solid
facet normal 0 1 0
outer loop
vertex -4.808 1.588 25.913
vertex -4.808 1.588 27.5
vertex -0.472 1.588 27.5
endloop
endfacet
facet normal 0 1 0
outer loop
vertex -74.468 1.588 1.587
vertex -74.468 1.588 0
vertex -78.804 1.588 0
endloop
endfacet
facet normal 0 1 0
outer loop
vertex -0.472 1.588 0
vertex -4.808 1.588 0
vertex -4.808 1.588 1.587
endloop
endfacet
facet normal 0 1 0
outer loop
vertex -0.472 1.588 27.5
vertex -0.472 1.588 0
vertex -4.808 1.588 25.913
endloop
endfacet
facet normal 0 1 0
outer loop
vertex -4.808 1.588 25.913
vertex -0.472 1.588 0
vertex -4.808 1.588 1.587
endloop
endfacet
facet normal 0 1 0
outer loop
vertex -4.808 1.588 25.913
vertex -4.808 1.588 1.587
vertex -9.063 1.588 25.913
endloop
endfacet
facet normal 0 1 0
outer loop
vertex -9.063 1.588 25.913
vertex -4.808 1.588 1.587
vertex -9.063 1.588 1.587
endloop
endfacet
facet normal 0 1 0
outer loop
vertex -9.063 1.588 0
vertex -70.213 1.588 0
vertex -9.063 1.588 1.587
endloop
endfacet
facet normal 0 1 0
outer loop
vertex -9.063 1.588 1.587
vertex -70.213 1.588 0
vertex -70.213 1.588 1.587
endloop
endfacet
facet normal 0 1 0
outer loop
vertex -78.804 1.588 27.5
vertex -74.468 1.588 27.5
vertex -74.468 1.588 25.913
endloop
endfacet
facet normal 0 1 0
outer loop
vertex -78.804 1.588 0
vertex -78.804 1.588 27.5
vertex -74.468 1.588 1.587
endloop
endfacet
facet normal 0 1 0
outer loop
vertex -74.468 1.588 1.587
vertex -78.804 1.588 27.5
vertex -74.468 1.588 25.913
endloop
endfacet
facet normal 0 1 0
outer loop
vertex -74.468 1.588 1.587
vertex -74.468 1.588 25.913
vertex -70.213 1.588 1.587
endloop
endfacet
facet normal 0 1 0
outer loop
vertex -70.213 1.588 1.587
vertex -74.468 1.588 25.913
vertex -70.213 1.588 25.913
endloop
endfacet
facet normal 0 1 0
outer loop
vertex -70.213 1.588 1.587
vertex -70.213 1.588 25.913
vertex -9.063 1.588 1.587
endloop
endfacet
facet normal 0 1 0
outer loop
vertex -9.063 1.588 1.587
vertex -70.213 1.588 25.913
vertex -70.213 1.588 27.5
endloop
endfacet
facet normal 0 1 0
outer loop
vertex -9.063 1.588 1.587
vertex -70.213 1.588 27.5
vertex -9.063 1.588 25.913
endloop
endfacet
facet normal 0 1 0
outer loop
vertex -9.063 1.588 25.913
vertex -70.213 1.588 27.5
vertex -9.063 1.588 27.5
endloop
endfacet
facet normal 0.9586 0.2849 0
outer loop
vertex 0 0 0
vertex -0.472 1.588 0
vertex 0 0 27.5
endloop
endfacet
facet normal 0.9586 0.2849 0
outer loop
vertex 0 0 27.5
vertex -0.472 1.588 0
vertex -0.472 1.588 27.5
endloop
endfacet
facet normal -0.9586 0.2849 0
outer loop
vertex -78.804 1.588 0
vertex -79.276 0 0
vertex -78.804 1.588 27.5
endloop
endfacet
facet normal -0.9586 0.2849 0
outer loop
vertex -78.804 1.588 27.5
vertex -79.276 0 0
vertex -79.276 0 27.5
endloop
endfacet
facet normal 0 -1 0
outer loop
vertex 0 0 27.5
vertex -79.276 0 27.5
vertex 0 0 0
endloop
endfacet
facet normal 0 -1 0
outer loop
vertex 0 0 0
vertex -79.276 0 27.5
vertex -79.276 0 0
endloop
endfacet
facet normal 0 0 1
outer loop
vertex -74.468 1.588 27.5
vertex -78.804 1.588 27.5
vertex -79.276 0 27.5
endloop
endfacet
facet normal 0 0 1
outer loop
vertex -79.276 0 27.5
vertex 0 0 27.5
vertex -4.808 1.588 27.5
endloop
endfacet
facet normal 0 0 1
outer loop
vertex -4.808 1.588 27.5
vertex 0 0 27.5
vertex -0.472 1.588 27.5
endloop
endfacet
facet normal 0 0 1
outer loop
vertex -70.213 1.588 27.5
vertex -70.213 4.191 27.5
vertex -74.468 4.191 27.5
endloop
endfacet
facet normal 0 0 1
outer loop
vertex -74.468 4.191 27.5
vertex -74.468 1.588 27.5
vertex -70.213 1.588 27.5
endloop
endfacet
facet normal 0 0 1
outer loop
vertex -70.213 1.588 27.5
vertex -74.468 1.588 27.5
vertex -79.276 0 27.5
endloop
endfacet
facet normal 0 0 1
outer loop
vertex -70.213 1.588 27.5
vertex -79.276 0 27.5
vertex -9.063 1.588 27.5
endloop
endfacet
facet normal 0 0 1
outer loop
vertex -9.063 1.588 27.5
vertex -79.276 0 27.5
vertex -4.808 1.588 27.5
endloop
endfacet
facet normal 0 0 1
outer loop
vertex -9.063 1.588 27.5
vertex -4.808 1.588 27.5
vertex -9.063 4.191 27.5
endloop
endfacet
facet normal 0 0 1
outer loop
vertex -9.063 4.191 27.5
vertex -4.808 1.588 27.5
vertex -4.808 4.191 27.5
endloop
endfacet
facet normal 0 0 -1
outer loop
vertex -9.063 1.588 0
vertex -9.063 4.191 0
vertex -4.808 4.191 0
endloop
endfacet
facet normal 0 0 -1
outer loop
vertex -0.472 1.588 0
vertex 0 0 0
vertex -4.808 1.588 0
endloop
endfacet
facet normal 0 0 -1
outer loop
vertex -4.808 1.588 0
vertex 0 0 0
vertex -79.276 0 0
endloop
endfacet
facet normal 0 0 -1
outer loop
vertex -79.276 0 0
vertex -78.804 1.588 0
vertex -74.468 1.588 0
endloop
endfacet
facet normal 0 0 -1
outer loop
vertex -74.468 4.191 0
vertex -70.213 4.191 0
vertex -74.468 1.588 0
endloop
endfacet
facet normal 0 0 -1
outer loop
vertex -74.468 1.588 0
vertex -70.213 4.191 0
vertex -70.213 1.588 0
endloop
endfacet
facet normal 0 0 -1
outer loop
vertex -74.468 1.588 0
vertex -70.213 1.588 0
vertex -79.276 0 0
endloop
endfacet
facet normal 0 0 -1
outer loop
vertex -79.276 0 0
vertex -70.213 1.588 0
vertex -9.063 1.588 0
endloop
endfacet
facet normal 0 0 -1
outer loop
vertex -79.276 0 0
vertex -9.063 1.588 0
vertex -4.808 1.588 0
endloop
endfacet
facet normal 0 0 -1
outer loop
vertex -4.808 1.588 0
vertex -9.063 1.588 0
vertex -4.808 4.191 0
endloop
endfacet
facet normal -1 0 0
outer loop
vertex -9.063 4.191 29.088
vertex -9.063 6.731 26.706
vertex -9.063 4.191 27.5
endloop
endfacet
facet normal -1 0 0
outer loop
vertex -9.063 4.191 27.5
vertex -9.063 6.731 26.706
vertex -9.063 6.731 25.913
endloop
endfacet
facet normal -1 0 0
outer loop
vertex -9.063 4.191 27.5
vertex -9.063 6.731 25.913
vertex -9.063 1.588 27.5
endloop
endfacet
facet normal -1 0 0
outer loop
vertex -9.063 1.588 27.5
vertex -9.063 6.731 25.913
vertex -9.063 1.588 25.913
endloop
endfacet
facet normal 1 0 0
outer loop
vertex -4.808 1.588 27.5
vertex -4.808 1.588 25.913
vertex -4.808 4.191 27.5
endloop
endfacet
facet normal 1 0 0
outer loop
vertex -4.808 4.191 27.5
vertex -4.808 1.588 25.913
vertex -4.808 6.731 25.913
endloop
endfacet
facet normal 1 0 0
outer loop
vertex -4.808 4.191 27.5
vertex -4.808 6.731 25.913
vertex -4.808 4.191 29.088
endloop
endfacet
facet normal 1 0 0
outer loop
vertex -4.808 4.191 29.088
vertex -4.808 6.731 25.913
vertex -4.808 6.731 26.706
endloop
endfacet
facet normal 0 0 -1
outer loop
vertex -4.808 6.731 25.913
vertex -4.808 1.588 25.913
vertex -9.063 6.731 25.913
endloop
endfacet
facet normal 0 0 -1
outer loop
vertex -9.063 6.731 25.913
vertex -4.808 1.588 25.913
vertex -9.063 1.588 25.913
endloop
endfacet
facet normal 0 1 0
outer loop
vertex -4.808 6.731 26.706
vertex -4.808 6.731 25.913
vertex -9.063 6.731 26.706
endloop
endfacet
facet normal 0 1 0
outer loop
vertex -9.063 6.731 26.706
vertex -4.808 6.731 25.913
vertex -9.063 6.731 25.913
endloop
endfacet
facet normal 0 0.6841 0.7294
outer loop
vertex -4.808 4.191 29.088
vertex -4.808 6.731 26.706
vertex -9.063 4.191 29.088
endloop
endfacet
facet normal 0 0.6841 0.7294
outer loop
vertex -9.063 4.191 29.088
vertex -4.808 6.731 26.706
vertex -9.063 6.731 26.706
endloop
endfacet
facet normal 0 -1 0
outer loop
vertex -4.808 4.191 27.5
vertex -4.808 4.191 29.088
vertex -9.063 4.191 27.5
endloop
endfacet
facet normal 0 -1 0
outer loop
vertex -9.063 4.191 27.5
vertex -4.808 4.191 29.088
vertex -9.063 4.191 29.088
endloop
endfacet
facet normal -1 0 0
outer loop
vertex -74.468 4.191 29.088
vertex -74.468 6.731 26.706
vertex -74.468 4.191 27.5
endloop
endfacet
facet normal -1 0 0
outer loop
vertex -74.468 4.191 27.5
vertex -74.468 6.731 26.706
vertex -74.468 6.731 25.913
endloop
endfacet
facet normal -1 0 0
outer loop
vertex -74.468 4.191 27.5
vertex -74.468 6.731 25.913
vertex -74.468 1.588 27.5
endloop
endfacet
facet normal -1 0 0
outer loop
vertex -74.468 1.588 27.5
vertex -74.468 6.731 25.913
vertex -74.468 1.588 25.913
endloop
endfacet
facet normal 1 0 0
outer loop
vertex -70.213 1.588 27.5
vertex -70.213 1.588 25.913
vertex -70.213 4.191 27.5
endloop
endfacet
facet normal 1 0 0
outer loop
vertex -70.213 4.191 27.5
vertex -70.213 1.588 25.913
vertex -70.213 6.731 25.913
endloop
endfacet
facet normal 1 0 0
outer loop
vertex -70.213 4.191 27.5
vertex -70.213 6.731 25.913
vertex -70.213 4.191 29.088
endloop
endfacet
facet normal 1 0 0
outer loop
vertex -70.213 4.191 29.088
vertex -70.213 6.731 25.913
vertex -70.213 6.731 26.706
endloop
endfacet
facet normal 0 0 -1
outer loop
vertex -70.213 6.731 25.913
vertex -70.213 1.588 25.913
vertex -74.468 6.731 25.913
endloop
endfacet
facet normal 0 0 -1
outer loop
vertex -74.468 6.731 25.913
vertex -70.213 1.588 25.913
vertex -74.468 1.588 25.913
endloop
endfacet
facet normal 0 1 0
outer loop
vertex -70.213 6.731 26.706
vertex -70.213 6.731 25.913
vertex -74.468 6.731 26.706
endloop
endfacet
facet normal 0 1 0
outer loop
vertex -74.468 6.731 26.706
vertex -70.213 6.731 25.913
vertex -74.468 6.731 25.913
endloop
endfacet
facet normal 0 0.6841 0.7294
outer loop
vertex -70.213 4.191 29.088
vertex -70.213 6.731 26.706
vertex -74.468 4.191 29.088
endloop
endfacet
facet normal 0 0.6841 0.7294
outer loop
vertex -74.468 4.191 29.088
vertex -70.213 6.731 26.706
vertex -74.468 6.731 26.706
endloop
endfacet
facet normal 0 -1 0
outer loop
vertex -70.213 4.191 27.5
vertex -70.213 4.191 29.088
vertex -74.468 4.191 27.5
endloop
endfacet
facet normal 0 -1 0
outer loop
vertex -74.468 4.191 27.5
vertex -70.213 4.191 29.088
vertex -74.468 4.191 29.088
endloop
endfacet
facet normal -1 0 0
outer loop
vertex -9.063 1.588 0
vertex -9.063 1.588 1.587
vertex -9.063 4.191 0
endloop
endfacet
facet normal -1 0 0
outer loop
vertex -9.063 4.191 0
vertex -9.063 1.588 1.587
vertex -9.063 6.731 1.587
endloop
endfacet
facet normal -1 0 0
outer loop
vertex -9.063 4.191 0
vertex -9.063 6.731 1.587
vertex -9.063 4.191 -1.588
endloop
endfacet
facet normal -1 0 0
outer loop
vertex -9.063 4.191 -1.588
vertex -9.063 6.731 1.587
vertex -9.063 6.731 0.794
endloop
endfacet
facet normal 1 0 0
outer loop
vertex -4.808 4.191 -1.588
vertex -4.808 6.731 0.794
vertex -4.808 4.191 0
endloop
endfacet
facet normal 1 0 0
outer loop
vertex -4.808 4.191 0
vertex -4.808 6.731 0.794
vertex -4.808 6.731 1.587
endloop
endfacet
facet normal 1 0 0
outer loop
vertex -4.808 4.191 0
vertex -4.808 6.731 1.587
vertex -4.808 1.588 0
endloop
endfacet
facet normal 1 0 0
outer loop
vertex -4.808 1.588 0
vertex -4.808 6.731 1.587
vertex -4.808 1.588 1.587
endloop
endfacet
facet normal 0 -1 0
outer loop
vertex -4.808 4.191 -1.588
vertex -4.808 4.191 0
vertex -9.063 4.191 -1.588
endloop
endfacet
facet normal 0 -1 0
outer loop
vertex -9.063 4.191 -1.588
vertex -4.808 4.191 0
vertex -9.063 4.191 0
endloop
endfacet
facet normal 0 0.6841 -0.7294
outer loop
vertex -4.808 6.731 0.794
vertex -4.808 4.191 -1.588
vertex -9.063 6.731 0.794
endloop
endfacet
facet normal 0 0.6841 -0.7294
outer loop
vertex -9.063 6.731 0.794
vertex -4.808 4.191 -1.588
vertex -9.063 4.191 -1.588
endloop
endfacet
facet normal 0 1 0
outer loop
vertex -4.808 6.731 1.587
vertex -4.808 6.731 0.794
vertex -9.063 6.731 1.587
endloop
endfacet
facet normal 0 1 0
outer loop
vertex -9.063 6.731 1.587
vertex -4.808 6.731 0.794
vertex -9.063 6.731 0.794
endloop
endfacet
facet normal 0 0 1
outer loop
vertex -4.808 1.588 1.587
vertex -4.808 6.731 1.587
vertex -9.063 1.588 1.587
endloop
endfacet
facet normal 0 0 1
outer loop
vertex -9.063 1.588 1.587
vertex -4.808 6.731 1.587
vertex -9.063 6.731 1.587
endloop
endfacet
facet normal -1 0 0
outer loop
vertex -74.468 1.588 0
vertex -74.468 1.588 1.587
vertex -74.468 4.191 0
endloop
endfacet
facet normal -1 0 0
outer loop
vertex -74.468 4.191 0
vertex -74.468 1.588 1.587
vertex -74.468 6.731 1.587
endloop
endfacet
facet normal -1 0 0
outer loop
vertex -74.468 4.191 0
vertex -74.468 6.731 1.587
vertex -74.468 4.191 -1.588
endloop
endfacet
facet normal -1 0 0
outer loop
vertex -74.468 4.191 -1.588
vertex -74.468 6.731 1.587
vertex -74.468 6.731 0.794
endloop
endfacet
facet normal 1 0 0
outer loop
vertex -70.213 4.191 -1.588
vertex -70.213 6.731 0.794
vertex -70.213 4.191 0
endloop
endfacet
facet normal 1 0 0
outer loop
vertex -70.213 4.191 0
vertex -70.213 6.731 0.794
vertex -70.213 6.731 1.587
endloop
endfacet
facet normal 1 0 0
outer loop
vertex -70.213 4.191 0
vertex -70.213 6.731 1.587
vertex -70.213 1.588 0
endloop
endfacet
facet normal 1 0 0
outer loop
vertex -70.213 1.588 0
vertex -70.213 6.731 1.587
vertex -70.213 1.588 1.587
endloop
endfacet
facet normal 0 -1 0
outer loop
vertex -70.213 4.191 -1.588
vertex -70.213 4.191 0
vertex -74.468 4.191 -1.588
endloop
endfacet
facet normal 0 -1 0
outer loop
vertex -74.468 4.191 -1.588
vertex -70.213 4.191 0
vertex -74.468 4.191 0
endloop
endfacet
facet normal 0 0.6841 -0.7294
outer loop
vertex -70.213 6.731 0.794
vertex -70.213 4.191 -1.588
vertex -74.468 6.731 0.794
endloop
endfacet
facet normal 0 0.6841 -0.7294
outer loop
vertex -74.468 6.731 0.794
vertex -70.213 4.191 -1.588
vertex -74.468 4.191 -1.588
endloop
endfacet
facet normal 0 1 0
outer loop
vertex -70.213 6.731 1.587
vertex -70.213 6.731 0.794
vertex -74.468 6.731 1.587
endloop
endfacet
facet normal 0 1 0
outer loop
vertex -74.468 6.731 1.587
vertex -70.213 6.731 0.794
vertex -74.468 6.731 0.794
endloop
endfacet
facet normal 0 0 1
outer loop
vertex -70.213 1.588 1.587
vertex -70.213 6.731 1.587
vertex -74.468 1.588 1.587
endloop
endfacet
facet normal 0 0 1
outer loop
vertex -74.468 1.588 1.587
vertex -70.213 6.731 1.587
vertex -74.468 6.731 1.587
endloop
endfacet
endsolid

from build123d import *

# Parameters (mm, degrees)
BOSS_EXTRUDE1_DEPTH  = 27.5
BOSS_EXTRUDE2_DEPTH  = 4.2545
LPATTERN2_COUNT      = 2
LPATTERN2_PITCH      = 65.405
MIRROR2_COPY_1_DEPTH = 4.2545


with BuildPart() as part:
    # Sketch1 → Boss-Extrude1 (new body)
    with BuildSketch(Plane.XY):
        with BuildLine():
            Line((0, 0), (-79.276260795, 0))
            ThreePointArc((-79.276260795, 0), (-79.053846694, 0.797858902), (-78.803819102, 1.5875))
            Line((-78.803819102, 1.5875), (-0.472441693, 1.5875))
            ThreePointArc((-0.472441693, 1.5875), (-0.222414101, 0.797858902), (0, 0))
        make_face()
    extrude(amount=BOSS_EXTRUDE1_DEPTH)

    # 3DSketch1 → Boss-Extrude2 (add)
    with BuildSketch(Plane(origin=(-4.808380397, 1.5875, 27.5), x_dir=(0, 0.9555235878955425, -0.2949146876220808), z_dir=(1, 0, 0))):
        Polygon((0, 0), (2.487705661, 0.767810389), (2.019528594, 2.284704085), (5.148824108, 0.758446848), (5.382912641, 0), (0.468177067, -1.516893696), align=None)
    boss_extrude2 = extrude(amount=-BOSS_EXTRUDE2_DEPTH)

    # LPattern2: Boss-Extrude2 ×2
    with Locations(*[(-i * LPATTERN2_PITCH, 0, 0) for i in range(1, LPATTERN2_COUNT)]):
        add(boss_extrude2)

    # Mirror2: Boss-Extrude2 across plane
    add(boss_extrude2.mirror(Plane.XY.offset(13.750000068)))

    # Mirror2 copy 1 sketch → Mirror2 copy 1 (add)
    with BuildSketch(Plane(origin=(-70.213380397, 1.5875, 1.36e-07), x_dir=(0, 0.9555235878955425, 0.2949146876220808), z_dir=(1, 0, 0))):
        Polygon((0, 0), (2.487705661, -0.767810389), (2.019528594, -2.284704085), (5.148824108, -0.758446848), (5.382912641, 0), (0.468177067, 1.516893696), align=None)
    extrude(amount=-MIRROR2_COPY_1_DEPTH)


solid = part.part
